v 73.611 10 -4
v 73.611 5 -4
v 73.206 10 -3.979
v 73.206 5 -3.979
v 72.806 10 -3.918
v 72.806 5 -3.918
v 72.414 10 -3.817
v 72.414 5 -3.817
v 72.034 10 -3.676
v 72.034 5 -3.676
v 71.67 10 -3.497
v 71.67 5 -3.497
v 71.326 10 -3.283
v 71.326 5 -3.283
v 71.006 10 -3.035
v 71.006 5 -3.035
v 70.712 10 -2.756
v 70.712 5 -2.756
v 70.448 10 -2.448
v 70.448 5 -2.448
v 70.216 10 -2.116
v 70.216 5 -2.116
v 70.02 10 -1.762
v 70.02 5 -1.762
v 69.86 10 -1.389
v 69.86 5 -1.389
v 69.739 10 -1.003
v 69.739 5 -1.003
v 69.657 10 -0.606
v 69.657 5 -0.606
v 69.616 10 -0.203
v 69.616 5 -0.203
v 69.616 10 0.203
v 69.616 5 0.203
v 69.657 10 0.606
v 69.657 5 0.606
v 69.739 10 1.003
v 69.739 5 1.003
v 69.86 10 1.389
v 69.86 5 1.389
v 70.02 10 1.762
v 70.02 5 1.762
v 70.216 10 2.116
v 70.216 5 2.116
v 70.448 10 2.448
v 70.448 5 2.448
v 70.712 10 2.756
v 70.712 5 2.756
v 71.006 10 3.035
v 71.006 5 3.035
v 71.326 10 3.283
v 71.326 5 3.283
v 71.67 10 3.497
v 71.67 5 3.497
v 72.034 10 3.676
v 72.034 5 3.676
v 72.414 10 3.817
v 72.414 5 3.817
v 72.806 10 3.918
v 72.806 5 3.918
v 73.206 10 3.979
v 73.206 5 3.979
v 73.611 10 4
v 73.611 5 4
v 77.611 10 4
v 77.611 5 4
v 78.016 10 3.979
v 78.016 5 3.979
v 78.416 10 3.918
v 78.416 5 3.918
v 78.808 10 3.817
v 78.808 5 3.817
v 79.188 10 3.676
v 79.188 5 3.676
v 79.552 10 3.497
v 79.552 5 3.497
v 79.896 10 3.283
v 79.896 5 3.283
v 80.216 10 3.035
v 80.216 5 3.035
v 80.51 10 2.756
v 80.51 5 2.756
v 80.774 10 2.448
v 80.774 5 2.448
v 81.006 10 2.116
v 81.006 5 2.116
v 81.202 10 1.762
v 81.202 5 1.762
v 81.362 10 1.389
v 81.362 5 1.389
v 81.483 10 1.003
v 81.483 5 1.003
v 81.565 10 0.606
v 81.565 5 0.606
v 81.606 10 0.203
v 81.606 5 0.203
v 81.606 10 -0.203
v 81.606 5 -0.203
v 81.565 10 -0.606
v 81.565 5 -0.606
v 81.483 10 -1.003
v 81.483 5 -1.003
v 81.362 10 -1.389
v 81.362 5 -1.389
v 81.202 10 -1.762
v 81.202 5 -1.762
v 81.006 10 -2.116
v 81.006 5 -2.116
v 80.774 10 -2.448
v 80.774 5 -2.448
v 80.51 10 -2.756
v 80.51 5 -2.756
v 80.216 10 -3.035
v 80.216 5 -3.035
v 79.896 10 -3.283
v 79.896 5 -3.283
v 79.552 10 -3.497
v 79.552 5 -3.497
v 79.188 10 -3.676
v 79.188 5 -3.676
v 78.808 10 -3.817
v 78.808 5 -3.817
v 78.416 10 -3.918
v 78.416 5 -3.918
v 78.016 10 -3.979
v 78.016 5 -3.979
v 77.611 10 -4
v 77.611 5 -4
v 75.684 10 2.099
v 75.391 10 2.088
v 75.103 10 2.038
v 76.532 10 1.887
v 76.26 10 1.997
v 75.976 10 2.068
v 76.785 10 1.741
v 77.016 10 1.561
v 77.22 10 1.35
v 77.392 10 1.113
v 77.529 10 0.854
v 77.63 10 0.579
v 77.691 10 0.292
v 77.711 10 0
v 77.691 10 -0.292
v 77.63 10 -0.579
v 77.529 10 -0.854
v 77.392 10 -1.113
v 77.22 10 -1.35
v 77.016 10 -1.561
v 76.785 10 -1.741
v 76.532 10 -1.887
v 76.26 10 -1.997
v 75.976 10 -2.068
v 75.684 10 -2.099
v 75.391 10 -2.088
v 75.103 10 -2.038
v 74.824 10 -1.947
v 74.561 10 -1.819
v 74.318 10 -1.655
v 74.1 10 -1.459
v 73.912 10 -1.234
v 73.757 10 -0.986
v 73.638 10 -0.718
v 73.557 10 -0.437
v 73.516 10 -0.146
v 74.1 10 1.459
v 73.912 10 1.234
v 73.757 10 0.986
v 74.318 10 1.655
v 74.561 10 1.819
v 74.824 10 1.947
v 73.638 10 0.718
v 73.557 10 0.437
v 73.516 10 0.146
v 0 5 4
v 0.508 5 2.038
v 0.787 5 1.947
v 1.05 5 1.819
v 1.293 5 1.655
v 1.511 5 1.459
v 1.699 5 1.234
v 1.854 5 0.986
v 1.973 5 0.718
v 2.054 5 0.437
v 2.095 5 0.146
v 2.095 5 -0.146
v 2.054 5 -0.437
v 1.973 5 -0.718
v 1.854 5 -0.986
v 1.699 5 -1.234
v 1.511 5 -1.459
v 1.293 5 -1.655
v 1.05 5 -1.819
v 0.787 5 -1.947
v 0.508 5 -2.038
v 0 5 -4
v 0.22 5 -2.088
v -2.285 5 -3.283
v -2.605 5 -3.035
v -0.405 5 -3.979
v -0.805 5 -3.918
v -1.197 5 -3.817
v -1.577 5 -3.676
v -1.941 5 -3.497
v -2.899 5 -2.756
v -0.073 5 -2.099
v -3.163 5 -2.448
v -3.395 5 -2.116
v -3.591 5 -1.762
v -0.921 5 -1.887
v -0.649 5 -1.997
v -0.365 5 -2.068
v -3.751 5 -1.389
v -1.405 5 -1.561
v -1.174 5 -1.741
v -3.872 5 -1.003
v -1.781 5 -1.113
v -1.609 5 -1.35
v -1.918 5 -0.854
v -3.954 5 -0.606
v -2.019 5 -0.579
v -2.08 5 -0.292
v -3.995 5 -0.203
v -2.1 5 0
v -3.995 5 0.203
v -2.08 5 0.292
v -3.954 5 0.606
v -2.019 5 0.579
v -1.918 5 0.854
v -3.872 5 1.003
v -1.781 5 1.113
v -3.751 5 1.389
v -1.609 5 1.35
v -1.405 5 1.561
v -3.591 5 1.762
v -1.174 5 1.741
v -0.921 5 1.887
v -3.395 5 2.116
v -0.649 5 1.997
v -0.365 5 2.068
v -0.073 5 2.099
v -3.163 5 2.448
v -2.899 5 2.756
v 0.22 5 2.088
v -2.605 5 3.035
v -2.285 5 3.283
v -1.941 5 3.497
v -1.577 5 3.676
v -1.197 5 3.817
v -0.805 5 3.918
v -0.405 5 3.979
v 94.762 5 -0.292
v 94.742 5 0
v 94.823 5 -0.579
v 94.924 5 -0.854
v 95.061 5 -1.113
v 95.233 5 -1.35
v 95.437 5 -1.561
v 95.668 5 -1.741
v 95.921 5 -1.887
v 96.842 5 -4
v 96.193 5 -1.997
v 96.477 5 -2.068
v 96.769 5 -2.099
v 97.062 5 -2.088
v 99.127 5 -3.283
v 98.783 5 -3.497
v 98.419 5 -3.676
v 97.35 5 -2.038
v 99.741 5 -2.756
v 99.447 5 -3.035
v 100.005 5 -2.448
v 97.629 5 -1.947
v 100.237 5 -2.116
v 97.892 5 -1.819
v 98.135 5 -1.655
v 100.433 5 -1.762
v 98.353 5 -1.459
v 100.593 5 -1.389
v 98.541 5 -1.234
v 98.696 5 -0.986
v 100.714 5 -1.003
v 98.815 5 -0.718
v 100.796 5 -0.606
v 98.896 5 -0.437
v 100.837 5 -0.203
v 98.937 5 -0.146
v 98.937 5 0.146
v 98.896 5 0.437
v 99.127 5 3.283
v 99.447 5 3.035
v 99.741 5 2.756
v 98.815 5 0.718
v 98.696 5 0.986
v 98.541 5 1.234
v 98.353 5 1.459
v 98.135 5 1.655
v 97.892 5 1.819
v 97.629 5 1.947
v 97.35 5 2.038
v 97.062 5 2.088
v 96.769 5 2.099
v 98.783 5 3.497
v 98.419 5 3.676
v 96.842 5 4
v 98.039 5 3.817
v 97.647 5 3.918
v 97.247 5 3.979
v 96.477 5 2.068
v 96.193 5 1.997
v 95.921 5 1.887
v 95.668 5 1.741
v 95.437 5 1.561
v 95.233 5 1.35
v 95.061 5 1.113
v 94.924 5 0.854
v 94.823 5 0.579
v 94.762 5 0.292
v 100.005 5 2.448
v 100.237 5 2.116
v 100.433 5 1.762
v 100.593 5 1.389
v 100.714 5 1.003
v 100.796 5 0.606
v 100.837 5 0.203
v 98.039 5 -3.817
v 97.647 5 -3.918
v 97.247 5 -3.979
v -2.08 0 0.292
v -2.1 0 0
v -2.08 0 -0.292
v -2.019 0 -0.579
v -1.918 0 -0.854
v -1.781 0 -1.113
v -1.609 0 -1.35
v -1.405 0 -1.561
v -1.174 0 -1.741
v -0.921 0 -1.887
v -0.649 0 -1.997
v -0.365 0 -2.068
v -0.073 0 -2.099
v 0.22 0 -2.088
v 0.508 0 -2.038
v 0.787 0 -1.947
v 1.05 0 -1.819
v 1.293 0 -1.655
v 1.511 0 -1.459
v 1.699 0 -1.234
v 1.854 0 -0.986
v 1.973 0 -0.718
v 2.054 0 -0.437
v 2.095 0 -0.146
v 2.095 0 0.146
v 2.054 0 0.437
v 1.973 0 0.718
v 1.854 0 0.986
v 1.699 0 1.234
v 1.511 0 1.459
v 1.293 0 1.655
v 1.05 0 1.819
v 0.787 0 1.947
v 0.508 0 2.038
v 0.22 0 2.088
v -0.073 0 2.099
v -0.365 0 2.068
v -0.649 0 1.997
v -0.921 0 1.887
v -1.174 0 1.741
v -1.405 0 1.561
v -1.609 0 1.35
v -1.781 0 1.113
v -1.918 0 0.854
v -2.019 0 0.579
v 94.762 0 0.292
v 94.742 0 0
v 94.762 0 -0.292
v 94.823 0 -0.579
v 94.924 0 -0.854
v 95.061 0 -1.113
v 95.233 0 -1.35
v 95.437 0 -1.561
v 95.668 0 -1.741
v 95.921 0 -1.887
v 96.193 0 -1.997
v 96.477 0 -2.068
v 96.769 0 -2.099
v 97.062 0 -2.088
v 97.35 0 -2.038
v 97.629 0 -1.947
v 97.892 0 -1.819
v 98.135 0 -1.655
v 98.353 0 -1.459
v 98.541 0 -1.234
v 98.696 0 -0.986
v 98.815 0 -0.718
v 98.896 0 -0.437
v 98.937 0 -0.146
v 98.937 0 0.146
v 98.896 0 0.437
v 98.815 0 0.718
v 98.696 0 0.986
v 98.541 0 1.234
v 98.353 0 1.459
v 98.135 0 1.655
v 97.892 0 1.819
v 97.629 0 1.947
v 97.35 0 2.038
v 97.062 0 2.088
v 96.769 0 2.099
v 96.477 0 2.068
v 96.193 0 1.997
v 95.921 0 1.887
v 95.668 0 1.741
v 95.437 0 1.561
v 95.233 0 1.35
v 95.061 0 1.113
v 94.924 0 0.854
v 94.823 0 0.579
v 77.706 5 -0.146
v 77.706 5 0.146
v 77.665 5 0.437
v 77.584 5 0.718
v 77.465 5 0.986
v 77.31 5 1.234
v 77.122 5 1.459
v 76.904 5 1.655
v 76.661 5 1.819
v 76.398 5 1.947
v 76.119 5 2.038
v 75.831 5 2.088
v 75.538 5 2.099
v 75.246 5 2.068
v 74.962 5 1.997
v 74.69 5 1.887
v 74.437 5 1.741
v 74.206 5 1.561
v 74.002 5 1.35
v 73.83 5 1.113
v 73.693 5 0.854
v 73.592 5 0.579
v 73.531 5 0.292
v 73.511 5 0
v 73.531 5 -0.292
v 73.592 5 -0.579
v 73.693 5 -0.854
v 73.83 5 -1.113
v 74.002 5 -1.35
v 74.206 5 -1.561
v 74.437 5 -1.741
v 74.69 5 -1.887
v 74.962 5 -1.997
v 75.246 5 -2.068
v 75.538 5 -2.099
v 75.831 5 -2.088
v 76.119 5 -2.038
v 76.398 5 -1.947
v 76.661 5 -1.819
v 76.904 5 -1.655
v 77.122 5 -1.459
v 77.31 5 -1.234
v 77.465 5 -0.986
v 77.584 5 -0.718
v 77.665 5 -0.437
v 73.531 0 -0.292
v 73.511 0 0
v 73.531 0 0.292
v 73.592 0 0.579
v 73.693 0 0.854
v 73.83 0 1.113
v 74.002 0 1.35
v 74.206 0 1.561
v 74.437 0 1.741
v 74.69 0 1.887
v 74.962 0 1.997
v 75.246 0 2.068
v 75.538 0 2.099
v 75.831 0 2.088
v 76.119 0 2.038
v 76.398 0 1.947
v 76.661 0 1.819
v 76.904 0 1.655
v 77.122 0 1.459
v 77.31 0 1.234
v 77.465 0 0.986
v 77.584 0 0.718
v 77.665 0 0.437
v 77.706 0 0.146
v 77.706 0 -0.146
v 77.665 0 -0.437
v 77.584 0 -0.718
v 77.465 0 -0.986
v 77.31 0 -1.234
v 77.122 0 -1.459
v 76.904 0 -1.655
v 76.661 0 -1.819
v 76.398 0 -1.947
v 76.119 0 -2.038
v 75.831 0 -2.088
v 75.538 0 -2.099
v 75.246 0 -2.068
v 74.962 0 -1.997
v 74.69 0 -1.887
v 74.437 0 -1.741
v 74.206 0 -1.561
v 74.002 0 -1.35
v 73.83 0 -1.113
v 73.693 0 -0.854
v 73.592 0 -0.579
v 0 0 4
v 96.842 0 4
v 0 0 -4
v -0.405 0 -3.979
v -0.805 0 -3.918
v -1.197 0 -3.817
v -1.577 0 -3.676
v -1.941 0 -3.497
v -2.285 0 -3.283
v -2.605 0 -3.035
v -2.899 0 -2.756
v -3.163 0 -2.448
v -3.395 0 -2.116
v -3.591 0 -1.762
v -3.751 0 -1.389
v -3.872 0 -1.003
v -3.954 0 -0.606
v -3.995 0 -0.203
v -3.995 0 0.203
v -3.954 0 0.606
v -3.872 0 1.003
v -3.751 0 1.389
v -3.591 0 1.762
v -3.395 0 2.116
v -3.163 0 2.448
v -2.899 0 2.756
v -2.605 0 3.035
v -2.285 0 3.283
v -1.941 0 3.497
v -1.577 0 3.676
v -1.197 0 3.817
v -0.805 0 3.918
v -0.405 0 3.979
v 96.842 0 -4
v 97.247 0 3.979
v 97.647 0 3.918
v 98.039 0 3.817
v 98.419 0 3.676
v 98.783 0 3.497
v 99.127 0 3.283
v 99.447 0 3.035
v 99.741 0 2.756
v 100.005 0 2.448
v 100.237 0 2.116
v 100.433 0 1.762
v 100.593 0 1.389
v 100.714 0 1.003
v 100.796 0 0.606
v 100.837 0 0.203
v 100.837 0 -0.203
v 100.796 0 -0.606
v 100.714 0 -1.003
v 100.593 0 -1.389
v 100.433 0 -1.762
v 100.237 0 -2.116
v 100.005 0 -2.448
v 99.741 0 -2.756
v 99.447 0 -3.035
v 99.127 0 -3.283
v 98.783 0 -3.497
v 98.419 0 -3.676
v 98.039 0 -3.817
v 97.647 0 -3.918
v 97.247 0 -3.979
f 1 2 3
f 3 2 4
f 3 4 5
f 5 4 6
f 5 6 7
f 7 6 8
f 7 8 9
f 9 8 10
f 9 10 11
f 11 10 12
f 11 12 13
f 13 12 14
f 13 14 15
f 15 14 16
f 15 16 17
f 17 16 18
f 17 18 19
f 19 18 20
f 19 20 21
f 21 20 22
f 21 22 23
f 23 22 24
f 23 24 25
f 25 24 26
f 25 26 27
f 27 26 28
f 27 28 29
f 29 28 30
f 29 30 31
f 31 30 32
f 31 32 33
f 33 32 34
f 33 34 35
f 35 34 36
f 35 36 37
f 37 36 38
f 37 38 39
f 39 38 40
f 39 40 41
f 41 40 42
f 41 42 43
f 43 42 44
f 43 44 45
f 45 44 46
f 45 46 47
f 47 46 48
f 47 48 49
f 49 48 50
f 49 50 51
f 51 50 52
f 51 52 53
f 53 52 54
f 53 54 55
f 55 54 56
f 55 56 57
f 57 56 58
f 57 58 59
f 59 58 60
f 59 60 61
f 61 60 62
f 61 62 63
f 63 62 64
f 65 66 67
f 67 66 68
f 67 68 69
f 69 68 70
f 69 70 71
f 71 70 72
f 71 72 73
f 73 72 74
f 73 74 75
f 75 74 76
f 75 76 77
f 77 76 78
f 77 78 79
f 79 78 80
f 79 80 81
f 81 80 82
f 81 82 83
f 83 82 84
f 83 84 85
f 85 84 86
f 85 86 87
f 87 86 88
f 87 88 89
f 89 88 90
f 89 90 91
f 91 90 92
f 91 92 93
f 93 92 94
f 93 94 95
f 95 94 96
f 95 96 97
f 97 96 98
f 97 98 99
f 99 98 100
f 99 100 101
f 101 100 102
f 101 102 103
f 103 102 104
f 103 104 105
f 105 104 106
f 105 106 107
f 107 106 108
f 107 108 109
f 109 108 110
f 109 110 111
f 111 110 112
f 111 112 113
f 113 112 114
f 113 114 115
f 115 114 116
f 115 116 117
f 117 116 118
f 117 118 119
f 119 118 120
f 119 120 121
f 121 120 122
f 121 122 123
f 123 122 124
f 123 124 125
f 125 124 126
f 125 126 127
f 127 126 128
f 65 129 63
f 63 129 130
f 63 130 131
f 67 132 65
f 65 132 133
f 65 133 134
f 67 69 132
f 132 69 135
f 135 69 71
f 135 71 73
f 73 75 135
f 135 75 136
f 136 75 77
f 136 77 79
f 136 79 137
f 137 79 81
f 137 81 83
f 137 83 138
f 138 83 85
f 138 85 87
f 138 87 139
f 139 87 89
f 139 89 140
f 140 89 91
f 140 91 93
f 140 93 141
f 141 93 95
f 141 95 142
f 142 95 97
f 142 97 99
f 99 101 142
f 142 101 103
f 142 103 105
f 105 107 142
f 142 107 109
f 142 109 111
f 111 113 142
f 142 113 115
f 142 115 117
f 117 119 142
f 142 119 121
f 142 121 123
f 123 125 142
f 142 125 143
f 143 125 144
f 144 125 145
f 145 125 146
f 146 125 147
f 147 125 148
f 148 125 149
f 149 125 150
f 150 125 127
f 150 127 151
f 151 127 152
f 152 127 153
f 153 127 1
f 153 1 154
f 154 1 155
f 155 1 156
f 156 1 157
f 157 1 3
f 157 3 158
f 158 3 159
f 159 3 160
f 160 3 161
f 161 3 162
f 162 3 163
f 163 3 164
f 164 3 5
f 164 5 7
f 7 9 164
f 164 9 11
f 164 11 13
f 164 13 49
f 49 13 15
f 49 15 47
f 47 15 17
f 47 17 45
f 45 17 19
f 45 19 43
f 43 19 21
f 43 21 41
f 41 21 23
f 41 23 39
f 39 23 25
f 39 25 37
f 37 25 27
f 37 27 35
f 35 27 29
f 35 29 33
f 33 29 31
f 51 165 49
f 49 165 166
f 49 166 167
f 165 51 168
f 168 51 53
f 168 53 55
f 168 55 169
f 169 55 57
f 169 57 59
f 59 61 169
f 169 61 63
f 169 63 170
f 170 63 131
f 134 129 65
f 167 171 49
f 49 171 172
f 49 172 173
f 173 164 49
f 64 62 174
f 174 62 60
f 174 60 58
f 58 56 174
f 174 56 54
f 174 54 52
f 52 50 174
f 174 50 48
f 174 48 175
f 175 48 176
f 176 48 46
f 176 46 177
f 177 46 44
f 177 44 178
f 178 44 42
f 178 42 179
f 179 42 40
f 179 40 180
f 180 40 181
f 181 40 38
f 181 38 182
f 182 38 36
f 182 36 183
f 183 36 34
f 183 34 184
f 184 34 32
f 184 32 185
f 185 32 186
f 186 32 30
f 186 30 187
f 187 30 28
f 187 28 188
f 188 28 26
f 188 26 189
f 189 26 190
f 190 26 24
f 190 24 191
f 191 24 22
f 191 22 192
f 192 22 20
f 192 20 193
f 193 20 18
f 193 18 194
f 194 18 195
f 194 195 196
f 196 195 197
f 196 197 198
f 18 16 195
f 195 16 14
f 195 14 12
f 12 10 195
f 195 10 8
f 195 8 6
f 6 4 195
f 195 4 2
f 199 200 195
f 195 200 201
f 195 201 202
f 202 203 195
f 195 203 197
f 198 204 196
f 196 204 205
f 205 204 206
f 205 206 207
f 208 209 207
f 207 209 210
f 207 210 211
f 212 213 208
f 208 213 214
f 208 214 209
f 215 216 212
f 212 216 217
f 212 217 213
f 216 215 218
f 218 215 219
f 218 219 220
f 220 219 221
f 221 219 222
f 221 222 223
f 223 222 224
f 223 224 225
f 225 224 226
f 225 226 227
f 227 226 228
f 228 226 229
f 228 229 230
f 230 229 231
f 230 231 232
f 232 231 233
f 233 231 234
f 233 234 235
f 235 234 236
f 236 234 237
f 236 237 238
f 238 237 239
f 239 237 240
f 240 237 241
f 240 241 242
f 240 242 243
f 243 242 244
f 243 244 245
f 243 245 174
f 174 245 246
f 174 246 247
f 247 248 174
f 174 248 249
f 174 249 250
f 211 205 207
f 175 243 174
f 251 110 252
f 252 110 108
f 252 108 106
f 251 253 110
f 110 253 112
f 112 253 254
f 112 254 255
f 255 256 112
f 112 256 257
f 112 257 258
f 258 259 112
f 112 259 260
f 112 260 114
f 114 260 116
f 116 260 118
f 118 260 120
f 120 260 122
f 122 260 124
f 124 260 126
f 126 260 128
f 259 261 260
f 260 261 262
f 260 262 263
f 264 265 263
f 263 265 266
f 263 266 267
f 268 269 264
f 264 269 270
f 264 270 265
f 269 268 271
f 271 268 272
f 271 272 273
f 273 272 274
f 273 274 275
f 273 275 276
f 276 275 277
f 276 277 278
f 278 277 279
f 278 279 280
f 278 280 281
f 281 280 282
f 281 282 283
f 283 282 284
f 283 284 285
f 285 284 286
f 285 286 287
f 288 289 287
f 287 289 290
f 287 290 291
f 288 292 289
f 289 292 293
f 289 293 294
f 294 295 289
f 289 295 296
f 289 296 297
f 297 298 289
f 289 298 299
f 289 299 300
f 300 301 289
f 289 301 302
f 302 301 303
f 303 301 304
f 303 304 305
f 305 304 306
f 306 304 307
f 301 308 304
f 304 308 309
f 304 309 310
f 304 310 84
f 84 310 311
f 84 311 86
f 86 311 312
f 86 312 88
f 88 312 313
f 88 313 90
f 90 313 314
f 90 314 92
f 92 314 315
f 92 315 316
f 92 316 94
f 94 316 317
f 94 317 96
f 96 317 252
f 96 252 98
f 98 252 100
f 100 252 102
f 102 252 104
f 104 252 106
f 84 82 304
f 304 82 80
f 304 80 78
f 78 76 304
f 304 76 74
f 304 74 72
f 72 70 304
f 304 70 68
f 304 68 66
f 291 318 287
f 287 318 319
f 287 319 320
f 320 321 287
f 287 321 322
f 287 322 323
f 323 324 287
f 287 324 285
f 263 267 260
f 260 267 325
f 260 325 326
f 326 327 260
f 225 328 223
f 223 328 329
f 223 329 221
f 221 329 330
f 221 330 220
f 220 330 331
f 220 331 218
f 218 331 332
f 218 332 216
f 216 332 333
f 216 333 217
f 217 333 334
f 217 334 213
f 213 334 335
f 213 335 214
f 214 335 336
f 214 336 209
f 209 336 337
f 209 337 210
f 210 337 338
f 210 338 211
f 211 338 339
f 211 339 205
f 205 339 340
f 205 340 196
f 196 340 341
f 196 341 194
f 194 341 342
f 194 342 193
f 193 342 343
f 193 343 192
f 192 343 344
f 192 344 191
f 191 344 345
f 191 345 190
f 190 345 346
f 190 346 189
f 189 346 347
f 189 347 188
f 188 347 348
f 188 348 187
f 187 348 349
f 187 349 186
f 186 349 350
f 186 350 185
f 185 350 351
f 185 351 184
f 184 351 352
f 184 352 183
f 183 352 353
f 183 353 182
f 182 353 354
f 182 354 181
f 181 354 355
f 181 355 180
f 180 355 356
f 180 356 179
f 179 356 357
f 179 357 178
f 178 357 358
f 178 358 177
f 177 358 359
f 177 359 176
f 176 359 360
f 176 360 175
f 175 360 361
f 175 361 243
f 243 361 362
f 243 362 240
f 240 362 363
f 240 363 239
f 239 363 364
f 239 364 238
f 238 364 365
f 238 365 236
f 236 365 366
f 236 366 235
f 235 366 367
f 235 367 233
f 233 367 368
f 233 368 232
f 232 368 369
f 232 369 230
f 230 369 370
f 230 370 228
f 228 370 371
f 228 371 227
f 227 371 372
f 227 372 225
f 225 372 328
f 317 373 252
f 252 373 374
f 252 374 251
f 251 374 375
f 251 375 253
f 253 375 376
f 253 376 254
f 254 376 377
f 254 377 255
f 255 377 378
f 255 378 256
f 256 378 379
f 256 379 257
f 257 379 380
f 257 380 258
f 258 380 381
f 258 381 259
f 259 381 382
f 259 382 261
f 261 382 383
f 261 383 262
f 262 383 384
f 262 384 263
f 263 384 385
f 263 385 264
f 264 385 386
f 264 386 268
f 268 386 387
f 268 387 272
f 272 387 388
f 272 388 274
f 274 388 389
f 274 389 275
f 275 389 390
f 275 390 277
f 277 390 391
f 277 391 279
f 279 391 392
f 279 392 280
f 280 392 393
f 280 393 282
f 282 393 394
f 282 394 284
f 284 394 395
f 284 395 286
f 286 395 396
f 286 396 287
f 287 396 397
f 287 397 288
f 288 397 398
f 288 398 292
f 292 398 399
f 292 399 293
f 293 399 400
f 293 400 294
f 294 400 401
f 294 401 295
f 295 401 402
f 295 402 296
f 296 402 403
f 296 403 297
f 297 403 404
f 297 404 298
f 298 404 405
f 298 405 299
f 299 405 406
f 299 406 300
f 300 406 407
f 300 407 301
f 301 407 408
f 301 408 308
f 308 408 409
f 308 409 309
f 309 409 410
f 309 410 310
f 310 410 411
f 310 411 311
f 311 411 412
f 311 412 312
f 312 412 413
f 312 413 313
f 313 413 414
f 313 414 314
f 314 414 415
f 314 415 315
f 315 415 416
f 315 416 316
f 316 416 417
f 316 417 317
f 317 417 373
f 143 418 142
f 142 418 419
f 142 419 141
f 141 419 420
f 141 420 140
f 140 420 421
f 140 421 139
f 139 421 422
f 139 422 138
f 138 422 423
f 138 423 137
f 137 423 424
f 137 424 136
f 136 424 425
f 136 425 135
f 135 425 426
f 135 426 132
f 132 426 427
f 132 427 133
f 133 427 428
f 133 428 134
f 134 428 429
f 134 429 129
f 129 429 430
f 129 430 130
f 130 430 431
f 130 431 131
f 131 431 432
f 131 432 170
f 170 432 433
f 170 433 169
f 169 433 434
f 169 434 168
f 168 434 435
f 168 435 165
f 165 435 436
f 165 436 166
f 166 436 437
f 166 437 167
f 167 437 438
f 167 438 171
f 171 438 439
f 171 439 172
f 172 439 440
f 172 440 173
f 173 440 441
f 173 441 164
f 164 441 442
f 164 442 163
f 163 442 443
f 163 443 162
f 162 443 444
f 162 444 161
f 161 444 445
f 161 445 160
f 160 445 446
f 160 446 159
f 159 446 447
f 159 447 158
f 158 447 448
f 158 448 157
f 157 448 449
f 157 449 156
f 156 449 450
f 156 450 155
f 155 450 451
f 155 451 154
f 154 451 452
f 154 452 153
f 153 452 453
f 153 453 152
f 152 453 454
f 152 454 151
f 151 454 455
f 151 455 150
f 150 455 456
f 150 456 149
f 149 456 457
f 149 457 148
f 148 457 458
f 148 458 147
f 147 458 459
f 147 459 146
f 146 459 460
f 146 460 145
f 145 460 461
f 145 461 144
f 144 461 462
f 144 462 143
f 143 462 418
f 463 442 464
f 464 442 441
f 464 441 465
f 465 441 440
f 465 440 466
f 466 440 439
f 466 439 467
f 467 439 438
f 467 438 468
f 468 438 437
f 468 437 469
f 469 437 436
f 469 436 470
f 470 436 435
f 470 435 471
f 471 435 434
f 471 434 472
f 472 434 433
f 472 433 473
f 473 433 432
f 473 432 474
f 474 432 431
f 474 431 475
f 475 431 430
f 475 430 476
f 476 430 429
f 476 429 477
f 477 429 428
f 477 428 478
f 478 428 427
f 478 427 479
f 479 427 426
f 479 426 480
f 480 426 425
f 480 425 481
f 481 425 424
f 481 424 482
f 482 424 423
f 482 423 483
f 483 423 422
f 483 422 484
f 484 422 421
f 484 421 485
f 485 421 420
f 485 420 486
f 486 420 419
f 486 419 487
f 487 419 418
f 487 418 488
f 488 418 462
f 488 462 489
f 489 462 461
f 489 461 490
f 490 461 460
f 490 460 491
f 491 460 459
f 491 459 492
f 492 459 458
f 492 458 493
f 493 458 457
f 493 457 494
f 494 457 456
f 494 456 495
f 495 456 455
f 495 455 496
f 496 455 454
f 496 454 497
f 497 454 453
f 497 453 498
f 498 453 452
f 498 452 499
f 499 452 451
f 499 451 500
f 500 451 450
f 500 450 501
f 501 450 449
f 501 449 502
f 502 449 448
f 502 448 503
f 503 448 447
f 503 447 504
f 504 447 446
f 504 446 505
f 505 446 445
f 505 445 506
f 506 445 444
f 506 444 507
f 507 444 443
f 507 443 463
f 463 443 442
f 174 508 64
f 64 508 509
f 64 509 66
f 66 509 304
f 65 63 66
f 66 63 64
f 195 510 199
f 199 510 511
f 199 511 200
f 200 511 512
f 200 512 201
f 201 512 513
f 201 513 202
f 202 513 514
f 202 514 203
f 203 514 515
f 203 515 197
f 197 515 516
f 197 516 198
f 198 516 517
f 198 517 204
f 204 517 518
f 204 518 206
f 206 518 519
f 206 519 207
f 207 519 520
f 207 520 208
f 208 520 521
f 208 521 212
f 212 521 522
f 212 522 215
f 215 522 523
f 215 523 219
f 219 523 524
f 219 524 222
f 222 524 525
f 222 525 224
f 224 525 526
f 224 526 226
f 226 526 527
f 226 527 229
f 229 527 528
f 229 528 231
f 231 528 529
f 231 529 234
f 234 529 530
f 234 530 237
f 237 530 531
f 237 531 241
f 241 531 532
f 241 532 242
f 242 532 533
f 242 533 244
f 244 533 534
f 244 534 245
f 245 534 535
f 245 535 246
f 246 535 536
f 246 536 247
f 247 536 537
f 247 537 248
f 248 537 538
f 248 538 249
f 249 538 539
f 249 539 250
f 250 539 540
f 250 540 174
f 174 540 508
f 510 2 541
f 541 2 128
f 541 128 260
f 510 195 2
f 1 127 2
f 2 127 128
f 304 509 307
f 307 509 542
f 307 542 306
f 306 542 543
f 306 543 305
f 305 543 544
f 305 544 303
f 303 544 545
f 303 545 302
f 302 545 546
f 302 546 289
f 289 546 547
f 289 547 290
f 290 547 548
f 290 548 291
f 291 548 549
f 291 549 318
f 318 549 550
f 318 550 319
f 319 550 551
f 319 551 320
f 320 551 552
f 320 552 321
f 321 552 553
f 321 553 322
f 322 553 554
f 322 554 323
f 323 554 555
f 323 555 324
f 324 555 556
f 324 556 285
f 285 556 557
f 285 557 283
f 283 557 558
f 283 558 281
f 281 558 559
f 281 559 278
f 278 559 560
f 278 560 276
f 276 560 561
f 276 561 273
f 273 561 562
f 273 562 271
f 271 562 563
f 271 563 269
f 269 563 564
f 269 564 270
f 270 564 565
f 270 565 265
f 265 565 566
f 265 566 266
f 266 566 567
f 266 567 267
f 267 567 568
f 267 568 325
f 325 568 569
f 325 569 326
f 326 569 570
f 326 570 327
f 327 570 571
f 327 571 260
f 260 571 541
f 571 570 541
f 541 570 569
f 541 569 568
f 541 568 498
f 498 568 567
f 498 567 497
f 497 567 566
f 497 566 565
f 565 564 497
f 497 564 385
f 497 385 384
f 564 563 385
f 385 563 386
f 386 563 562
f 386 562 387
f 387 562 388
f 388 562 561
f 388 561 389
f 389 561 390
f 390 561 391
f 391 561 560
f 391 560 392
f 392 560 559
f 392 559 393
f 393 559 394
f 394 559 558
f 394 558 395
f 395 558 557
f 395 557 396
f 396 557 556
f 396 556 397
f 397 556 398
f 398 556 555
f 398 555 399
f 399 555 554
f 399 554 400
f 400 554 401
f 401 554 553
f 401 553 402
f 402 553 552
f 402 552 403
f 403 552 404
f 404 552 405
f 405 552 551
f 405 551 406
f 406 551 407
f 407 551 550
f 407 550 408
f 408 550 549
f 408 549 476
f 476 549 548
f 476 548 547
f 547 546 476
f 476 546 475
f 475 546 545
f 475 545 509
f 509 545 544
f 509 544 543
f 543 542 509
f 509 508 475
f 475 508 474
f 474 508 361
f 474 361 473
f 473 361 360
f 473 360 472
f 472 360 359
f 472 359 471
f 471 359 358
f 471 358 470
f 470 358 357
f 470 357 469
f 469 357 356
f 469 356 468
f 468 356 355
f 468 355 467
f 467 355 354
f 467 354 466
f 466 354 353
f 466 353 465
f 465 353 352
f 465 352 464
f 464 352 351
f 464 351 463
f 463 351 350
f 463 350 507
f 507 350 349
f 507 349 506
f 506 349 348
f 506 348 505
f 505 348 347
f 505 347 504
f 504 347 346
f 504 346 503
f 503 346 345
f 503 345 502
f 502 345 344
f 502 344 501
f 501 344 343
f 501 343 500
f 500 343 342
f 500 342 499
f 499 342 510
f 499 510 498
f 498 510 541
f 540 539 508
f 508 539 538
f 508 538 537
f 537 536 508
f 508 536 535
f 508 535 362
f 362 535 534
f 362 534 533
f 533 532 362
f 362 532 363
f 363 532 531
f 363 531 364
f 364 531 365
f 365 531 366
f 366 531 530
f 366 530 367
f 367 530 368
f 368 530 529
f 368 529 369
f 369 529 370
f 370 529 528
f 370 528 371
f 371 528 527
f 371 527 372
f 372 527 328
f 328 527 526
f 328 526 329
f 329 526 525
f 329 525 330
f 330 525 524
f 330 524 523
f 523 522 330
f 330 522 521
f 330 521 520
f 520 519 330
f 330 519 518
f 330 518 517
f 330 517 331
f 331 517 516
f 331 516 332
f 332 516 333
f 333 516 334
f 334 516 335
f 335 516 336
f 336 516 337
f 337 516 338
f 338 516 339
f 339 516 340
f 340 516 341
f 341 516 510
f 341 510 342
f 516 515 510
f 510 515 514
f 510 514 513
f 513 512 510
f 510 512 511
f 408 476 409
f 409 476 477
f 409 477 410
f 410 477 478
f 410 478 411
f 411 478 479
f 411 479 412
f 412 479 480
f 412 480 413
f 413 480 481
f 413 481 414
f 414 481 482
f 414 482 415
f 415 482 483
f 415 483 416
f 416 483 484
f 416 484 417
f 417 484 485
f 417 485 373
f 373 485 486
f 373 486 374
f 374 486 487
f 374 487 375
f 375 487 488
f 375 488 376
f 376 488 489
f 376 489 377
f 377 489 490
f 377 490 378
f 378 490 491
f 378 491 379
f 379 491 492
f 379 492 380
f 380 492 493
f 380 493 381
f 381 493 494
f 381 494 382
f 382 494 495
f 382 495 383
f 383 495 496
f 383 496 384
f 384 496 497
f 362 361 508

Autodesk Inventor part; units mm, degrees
ref_plane "YZ Plane" through (0, 0, 0) normal (1, 0, 0) x (0, 1, 0)
ref_plane "XZ Plane" through (0, 0, 0) normal (0, 1, 0) x (-1, 0, 0)
ref_plane "XY Plane" through (0, 0, 0) normal (0, 0, 1) x (1, 0, 0)
sketch "Sketch1" plane through (0, 0, 0) normal (0, 1, 0) x (-1, 0, 0)
  line L0 (0, 0) -> (-96.842, 0) construction
  line L1 (0, 4) -> (-96.842, 4)
  line L2 (-96.842, -4) -> (0, -4)
  arc A0 (0, -4) -> (0, 4) centre (0, 0) ccw
  arc A1 (-96.842, 4) -> (-96.842, -4) centre (-96.842, 0) ccw
  circle A2 centre (0, 0) radius 2.1
  circle A3 centre (-96.842, 0) radius 2.1
  circle A4 centre (-75.611, 0) radius 2.1
  point P0 (-48.421, 0)
  dimension "d0" = 96.842
  dimension "d1" = 8
  dimension "d2" = 4.2
  dimension "d10" = 4.2
  dimension "d28" = 4.2
  dimension "d29" = 75.611
extrude "Extrusion1" add sketch "Sketch1" along normal blind 5
sketch "Sketch4" plane through (0, 5, 0) normal (0, 1, 0) x (1, 0, 0)
  arc A0 (96.842, -4) -> (96.842, 4) centre (96.842, 0) ccw projected
  line L0 (96.842, 4) -> (0, 4) projected
  arc A1 (0, 4) -> (0, -4) centre (0, 0) ccw projected
  line L1 (0, -4) -> (96.842, -4) projected
  circle A2 centre (75.611, 0) radius 2.1 projected
  circle A3 centre (96.842, 0) radius 2.1 projected
  circle A4 centre (0, 0) radius 2.1 projected
  circle A5 centre (75.611, 0) radius 4
  circle A6 centre (73.611, 0) radius 4
  circle A7 centre (77.611, 0) radius 4
  point P0 (73.611, 4)
  point P1 (73.611, -4)
  point P2 (77.611, -4)
  point P3 (77.611, 4)
  dimension "d30" = 8
  dimension "d31" = 8
  dimension "d32" = 8
  dimension "d33" = 2
  dimension "d34" = 2
extrude "Extrusion7" add sketch "Sketch4" along normal blind 5 contours L1 A5 A7 | A7 A5 | A7 A5 L0 | L1 A6 A5 | A5 A6 A7 | A7 A6 A2 A5 | A5 A6 L0 | A5 A7 A6 | A6 A5 | A5 A6 A7 A2 | A7 A2 A6 | A6 A2 A7 picked at (75.3898, -2.8494) picked at (75.3898, 2.8494)
